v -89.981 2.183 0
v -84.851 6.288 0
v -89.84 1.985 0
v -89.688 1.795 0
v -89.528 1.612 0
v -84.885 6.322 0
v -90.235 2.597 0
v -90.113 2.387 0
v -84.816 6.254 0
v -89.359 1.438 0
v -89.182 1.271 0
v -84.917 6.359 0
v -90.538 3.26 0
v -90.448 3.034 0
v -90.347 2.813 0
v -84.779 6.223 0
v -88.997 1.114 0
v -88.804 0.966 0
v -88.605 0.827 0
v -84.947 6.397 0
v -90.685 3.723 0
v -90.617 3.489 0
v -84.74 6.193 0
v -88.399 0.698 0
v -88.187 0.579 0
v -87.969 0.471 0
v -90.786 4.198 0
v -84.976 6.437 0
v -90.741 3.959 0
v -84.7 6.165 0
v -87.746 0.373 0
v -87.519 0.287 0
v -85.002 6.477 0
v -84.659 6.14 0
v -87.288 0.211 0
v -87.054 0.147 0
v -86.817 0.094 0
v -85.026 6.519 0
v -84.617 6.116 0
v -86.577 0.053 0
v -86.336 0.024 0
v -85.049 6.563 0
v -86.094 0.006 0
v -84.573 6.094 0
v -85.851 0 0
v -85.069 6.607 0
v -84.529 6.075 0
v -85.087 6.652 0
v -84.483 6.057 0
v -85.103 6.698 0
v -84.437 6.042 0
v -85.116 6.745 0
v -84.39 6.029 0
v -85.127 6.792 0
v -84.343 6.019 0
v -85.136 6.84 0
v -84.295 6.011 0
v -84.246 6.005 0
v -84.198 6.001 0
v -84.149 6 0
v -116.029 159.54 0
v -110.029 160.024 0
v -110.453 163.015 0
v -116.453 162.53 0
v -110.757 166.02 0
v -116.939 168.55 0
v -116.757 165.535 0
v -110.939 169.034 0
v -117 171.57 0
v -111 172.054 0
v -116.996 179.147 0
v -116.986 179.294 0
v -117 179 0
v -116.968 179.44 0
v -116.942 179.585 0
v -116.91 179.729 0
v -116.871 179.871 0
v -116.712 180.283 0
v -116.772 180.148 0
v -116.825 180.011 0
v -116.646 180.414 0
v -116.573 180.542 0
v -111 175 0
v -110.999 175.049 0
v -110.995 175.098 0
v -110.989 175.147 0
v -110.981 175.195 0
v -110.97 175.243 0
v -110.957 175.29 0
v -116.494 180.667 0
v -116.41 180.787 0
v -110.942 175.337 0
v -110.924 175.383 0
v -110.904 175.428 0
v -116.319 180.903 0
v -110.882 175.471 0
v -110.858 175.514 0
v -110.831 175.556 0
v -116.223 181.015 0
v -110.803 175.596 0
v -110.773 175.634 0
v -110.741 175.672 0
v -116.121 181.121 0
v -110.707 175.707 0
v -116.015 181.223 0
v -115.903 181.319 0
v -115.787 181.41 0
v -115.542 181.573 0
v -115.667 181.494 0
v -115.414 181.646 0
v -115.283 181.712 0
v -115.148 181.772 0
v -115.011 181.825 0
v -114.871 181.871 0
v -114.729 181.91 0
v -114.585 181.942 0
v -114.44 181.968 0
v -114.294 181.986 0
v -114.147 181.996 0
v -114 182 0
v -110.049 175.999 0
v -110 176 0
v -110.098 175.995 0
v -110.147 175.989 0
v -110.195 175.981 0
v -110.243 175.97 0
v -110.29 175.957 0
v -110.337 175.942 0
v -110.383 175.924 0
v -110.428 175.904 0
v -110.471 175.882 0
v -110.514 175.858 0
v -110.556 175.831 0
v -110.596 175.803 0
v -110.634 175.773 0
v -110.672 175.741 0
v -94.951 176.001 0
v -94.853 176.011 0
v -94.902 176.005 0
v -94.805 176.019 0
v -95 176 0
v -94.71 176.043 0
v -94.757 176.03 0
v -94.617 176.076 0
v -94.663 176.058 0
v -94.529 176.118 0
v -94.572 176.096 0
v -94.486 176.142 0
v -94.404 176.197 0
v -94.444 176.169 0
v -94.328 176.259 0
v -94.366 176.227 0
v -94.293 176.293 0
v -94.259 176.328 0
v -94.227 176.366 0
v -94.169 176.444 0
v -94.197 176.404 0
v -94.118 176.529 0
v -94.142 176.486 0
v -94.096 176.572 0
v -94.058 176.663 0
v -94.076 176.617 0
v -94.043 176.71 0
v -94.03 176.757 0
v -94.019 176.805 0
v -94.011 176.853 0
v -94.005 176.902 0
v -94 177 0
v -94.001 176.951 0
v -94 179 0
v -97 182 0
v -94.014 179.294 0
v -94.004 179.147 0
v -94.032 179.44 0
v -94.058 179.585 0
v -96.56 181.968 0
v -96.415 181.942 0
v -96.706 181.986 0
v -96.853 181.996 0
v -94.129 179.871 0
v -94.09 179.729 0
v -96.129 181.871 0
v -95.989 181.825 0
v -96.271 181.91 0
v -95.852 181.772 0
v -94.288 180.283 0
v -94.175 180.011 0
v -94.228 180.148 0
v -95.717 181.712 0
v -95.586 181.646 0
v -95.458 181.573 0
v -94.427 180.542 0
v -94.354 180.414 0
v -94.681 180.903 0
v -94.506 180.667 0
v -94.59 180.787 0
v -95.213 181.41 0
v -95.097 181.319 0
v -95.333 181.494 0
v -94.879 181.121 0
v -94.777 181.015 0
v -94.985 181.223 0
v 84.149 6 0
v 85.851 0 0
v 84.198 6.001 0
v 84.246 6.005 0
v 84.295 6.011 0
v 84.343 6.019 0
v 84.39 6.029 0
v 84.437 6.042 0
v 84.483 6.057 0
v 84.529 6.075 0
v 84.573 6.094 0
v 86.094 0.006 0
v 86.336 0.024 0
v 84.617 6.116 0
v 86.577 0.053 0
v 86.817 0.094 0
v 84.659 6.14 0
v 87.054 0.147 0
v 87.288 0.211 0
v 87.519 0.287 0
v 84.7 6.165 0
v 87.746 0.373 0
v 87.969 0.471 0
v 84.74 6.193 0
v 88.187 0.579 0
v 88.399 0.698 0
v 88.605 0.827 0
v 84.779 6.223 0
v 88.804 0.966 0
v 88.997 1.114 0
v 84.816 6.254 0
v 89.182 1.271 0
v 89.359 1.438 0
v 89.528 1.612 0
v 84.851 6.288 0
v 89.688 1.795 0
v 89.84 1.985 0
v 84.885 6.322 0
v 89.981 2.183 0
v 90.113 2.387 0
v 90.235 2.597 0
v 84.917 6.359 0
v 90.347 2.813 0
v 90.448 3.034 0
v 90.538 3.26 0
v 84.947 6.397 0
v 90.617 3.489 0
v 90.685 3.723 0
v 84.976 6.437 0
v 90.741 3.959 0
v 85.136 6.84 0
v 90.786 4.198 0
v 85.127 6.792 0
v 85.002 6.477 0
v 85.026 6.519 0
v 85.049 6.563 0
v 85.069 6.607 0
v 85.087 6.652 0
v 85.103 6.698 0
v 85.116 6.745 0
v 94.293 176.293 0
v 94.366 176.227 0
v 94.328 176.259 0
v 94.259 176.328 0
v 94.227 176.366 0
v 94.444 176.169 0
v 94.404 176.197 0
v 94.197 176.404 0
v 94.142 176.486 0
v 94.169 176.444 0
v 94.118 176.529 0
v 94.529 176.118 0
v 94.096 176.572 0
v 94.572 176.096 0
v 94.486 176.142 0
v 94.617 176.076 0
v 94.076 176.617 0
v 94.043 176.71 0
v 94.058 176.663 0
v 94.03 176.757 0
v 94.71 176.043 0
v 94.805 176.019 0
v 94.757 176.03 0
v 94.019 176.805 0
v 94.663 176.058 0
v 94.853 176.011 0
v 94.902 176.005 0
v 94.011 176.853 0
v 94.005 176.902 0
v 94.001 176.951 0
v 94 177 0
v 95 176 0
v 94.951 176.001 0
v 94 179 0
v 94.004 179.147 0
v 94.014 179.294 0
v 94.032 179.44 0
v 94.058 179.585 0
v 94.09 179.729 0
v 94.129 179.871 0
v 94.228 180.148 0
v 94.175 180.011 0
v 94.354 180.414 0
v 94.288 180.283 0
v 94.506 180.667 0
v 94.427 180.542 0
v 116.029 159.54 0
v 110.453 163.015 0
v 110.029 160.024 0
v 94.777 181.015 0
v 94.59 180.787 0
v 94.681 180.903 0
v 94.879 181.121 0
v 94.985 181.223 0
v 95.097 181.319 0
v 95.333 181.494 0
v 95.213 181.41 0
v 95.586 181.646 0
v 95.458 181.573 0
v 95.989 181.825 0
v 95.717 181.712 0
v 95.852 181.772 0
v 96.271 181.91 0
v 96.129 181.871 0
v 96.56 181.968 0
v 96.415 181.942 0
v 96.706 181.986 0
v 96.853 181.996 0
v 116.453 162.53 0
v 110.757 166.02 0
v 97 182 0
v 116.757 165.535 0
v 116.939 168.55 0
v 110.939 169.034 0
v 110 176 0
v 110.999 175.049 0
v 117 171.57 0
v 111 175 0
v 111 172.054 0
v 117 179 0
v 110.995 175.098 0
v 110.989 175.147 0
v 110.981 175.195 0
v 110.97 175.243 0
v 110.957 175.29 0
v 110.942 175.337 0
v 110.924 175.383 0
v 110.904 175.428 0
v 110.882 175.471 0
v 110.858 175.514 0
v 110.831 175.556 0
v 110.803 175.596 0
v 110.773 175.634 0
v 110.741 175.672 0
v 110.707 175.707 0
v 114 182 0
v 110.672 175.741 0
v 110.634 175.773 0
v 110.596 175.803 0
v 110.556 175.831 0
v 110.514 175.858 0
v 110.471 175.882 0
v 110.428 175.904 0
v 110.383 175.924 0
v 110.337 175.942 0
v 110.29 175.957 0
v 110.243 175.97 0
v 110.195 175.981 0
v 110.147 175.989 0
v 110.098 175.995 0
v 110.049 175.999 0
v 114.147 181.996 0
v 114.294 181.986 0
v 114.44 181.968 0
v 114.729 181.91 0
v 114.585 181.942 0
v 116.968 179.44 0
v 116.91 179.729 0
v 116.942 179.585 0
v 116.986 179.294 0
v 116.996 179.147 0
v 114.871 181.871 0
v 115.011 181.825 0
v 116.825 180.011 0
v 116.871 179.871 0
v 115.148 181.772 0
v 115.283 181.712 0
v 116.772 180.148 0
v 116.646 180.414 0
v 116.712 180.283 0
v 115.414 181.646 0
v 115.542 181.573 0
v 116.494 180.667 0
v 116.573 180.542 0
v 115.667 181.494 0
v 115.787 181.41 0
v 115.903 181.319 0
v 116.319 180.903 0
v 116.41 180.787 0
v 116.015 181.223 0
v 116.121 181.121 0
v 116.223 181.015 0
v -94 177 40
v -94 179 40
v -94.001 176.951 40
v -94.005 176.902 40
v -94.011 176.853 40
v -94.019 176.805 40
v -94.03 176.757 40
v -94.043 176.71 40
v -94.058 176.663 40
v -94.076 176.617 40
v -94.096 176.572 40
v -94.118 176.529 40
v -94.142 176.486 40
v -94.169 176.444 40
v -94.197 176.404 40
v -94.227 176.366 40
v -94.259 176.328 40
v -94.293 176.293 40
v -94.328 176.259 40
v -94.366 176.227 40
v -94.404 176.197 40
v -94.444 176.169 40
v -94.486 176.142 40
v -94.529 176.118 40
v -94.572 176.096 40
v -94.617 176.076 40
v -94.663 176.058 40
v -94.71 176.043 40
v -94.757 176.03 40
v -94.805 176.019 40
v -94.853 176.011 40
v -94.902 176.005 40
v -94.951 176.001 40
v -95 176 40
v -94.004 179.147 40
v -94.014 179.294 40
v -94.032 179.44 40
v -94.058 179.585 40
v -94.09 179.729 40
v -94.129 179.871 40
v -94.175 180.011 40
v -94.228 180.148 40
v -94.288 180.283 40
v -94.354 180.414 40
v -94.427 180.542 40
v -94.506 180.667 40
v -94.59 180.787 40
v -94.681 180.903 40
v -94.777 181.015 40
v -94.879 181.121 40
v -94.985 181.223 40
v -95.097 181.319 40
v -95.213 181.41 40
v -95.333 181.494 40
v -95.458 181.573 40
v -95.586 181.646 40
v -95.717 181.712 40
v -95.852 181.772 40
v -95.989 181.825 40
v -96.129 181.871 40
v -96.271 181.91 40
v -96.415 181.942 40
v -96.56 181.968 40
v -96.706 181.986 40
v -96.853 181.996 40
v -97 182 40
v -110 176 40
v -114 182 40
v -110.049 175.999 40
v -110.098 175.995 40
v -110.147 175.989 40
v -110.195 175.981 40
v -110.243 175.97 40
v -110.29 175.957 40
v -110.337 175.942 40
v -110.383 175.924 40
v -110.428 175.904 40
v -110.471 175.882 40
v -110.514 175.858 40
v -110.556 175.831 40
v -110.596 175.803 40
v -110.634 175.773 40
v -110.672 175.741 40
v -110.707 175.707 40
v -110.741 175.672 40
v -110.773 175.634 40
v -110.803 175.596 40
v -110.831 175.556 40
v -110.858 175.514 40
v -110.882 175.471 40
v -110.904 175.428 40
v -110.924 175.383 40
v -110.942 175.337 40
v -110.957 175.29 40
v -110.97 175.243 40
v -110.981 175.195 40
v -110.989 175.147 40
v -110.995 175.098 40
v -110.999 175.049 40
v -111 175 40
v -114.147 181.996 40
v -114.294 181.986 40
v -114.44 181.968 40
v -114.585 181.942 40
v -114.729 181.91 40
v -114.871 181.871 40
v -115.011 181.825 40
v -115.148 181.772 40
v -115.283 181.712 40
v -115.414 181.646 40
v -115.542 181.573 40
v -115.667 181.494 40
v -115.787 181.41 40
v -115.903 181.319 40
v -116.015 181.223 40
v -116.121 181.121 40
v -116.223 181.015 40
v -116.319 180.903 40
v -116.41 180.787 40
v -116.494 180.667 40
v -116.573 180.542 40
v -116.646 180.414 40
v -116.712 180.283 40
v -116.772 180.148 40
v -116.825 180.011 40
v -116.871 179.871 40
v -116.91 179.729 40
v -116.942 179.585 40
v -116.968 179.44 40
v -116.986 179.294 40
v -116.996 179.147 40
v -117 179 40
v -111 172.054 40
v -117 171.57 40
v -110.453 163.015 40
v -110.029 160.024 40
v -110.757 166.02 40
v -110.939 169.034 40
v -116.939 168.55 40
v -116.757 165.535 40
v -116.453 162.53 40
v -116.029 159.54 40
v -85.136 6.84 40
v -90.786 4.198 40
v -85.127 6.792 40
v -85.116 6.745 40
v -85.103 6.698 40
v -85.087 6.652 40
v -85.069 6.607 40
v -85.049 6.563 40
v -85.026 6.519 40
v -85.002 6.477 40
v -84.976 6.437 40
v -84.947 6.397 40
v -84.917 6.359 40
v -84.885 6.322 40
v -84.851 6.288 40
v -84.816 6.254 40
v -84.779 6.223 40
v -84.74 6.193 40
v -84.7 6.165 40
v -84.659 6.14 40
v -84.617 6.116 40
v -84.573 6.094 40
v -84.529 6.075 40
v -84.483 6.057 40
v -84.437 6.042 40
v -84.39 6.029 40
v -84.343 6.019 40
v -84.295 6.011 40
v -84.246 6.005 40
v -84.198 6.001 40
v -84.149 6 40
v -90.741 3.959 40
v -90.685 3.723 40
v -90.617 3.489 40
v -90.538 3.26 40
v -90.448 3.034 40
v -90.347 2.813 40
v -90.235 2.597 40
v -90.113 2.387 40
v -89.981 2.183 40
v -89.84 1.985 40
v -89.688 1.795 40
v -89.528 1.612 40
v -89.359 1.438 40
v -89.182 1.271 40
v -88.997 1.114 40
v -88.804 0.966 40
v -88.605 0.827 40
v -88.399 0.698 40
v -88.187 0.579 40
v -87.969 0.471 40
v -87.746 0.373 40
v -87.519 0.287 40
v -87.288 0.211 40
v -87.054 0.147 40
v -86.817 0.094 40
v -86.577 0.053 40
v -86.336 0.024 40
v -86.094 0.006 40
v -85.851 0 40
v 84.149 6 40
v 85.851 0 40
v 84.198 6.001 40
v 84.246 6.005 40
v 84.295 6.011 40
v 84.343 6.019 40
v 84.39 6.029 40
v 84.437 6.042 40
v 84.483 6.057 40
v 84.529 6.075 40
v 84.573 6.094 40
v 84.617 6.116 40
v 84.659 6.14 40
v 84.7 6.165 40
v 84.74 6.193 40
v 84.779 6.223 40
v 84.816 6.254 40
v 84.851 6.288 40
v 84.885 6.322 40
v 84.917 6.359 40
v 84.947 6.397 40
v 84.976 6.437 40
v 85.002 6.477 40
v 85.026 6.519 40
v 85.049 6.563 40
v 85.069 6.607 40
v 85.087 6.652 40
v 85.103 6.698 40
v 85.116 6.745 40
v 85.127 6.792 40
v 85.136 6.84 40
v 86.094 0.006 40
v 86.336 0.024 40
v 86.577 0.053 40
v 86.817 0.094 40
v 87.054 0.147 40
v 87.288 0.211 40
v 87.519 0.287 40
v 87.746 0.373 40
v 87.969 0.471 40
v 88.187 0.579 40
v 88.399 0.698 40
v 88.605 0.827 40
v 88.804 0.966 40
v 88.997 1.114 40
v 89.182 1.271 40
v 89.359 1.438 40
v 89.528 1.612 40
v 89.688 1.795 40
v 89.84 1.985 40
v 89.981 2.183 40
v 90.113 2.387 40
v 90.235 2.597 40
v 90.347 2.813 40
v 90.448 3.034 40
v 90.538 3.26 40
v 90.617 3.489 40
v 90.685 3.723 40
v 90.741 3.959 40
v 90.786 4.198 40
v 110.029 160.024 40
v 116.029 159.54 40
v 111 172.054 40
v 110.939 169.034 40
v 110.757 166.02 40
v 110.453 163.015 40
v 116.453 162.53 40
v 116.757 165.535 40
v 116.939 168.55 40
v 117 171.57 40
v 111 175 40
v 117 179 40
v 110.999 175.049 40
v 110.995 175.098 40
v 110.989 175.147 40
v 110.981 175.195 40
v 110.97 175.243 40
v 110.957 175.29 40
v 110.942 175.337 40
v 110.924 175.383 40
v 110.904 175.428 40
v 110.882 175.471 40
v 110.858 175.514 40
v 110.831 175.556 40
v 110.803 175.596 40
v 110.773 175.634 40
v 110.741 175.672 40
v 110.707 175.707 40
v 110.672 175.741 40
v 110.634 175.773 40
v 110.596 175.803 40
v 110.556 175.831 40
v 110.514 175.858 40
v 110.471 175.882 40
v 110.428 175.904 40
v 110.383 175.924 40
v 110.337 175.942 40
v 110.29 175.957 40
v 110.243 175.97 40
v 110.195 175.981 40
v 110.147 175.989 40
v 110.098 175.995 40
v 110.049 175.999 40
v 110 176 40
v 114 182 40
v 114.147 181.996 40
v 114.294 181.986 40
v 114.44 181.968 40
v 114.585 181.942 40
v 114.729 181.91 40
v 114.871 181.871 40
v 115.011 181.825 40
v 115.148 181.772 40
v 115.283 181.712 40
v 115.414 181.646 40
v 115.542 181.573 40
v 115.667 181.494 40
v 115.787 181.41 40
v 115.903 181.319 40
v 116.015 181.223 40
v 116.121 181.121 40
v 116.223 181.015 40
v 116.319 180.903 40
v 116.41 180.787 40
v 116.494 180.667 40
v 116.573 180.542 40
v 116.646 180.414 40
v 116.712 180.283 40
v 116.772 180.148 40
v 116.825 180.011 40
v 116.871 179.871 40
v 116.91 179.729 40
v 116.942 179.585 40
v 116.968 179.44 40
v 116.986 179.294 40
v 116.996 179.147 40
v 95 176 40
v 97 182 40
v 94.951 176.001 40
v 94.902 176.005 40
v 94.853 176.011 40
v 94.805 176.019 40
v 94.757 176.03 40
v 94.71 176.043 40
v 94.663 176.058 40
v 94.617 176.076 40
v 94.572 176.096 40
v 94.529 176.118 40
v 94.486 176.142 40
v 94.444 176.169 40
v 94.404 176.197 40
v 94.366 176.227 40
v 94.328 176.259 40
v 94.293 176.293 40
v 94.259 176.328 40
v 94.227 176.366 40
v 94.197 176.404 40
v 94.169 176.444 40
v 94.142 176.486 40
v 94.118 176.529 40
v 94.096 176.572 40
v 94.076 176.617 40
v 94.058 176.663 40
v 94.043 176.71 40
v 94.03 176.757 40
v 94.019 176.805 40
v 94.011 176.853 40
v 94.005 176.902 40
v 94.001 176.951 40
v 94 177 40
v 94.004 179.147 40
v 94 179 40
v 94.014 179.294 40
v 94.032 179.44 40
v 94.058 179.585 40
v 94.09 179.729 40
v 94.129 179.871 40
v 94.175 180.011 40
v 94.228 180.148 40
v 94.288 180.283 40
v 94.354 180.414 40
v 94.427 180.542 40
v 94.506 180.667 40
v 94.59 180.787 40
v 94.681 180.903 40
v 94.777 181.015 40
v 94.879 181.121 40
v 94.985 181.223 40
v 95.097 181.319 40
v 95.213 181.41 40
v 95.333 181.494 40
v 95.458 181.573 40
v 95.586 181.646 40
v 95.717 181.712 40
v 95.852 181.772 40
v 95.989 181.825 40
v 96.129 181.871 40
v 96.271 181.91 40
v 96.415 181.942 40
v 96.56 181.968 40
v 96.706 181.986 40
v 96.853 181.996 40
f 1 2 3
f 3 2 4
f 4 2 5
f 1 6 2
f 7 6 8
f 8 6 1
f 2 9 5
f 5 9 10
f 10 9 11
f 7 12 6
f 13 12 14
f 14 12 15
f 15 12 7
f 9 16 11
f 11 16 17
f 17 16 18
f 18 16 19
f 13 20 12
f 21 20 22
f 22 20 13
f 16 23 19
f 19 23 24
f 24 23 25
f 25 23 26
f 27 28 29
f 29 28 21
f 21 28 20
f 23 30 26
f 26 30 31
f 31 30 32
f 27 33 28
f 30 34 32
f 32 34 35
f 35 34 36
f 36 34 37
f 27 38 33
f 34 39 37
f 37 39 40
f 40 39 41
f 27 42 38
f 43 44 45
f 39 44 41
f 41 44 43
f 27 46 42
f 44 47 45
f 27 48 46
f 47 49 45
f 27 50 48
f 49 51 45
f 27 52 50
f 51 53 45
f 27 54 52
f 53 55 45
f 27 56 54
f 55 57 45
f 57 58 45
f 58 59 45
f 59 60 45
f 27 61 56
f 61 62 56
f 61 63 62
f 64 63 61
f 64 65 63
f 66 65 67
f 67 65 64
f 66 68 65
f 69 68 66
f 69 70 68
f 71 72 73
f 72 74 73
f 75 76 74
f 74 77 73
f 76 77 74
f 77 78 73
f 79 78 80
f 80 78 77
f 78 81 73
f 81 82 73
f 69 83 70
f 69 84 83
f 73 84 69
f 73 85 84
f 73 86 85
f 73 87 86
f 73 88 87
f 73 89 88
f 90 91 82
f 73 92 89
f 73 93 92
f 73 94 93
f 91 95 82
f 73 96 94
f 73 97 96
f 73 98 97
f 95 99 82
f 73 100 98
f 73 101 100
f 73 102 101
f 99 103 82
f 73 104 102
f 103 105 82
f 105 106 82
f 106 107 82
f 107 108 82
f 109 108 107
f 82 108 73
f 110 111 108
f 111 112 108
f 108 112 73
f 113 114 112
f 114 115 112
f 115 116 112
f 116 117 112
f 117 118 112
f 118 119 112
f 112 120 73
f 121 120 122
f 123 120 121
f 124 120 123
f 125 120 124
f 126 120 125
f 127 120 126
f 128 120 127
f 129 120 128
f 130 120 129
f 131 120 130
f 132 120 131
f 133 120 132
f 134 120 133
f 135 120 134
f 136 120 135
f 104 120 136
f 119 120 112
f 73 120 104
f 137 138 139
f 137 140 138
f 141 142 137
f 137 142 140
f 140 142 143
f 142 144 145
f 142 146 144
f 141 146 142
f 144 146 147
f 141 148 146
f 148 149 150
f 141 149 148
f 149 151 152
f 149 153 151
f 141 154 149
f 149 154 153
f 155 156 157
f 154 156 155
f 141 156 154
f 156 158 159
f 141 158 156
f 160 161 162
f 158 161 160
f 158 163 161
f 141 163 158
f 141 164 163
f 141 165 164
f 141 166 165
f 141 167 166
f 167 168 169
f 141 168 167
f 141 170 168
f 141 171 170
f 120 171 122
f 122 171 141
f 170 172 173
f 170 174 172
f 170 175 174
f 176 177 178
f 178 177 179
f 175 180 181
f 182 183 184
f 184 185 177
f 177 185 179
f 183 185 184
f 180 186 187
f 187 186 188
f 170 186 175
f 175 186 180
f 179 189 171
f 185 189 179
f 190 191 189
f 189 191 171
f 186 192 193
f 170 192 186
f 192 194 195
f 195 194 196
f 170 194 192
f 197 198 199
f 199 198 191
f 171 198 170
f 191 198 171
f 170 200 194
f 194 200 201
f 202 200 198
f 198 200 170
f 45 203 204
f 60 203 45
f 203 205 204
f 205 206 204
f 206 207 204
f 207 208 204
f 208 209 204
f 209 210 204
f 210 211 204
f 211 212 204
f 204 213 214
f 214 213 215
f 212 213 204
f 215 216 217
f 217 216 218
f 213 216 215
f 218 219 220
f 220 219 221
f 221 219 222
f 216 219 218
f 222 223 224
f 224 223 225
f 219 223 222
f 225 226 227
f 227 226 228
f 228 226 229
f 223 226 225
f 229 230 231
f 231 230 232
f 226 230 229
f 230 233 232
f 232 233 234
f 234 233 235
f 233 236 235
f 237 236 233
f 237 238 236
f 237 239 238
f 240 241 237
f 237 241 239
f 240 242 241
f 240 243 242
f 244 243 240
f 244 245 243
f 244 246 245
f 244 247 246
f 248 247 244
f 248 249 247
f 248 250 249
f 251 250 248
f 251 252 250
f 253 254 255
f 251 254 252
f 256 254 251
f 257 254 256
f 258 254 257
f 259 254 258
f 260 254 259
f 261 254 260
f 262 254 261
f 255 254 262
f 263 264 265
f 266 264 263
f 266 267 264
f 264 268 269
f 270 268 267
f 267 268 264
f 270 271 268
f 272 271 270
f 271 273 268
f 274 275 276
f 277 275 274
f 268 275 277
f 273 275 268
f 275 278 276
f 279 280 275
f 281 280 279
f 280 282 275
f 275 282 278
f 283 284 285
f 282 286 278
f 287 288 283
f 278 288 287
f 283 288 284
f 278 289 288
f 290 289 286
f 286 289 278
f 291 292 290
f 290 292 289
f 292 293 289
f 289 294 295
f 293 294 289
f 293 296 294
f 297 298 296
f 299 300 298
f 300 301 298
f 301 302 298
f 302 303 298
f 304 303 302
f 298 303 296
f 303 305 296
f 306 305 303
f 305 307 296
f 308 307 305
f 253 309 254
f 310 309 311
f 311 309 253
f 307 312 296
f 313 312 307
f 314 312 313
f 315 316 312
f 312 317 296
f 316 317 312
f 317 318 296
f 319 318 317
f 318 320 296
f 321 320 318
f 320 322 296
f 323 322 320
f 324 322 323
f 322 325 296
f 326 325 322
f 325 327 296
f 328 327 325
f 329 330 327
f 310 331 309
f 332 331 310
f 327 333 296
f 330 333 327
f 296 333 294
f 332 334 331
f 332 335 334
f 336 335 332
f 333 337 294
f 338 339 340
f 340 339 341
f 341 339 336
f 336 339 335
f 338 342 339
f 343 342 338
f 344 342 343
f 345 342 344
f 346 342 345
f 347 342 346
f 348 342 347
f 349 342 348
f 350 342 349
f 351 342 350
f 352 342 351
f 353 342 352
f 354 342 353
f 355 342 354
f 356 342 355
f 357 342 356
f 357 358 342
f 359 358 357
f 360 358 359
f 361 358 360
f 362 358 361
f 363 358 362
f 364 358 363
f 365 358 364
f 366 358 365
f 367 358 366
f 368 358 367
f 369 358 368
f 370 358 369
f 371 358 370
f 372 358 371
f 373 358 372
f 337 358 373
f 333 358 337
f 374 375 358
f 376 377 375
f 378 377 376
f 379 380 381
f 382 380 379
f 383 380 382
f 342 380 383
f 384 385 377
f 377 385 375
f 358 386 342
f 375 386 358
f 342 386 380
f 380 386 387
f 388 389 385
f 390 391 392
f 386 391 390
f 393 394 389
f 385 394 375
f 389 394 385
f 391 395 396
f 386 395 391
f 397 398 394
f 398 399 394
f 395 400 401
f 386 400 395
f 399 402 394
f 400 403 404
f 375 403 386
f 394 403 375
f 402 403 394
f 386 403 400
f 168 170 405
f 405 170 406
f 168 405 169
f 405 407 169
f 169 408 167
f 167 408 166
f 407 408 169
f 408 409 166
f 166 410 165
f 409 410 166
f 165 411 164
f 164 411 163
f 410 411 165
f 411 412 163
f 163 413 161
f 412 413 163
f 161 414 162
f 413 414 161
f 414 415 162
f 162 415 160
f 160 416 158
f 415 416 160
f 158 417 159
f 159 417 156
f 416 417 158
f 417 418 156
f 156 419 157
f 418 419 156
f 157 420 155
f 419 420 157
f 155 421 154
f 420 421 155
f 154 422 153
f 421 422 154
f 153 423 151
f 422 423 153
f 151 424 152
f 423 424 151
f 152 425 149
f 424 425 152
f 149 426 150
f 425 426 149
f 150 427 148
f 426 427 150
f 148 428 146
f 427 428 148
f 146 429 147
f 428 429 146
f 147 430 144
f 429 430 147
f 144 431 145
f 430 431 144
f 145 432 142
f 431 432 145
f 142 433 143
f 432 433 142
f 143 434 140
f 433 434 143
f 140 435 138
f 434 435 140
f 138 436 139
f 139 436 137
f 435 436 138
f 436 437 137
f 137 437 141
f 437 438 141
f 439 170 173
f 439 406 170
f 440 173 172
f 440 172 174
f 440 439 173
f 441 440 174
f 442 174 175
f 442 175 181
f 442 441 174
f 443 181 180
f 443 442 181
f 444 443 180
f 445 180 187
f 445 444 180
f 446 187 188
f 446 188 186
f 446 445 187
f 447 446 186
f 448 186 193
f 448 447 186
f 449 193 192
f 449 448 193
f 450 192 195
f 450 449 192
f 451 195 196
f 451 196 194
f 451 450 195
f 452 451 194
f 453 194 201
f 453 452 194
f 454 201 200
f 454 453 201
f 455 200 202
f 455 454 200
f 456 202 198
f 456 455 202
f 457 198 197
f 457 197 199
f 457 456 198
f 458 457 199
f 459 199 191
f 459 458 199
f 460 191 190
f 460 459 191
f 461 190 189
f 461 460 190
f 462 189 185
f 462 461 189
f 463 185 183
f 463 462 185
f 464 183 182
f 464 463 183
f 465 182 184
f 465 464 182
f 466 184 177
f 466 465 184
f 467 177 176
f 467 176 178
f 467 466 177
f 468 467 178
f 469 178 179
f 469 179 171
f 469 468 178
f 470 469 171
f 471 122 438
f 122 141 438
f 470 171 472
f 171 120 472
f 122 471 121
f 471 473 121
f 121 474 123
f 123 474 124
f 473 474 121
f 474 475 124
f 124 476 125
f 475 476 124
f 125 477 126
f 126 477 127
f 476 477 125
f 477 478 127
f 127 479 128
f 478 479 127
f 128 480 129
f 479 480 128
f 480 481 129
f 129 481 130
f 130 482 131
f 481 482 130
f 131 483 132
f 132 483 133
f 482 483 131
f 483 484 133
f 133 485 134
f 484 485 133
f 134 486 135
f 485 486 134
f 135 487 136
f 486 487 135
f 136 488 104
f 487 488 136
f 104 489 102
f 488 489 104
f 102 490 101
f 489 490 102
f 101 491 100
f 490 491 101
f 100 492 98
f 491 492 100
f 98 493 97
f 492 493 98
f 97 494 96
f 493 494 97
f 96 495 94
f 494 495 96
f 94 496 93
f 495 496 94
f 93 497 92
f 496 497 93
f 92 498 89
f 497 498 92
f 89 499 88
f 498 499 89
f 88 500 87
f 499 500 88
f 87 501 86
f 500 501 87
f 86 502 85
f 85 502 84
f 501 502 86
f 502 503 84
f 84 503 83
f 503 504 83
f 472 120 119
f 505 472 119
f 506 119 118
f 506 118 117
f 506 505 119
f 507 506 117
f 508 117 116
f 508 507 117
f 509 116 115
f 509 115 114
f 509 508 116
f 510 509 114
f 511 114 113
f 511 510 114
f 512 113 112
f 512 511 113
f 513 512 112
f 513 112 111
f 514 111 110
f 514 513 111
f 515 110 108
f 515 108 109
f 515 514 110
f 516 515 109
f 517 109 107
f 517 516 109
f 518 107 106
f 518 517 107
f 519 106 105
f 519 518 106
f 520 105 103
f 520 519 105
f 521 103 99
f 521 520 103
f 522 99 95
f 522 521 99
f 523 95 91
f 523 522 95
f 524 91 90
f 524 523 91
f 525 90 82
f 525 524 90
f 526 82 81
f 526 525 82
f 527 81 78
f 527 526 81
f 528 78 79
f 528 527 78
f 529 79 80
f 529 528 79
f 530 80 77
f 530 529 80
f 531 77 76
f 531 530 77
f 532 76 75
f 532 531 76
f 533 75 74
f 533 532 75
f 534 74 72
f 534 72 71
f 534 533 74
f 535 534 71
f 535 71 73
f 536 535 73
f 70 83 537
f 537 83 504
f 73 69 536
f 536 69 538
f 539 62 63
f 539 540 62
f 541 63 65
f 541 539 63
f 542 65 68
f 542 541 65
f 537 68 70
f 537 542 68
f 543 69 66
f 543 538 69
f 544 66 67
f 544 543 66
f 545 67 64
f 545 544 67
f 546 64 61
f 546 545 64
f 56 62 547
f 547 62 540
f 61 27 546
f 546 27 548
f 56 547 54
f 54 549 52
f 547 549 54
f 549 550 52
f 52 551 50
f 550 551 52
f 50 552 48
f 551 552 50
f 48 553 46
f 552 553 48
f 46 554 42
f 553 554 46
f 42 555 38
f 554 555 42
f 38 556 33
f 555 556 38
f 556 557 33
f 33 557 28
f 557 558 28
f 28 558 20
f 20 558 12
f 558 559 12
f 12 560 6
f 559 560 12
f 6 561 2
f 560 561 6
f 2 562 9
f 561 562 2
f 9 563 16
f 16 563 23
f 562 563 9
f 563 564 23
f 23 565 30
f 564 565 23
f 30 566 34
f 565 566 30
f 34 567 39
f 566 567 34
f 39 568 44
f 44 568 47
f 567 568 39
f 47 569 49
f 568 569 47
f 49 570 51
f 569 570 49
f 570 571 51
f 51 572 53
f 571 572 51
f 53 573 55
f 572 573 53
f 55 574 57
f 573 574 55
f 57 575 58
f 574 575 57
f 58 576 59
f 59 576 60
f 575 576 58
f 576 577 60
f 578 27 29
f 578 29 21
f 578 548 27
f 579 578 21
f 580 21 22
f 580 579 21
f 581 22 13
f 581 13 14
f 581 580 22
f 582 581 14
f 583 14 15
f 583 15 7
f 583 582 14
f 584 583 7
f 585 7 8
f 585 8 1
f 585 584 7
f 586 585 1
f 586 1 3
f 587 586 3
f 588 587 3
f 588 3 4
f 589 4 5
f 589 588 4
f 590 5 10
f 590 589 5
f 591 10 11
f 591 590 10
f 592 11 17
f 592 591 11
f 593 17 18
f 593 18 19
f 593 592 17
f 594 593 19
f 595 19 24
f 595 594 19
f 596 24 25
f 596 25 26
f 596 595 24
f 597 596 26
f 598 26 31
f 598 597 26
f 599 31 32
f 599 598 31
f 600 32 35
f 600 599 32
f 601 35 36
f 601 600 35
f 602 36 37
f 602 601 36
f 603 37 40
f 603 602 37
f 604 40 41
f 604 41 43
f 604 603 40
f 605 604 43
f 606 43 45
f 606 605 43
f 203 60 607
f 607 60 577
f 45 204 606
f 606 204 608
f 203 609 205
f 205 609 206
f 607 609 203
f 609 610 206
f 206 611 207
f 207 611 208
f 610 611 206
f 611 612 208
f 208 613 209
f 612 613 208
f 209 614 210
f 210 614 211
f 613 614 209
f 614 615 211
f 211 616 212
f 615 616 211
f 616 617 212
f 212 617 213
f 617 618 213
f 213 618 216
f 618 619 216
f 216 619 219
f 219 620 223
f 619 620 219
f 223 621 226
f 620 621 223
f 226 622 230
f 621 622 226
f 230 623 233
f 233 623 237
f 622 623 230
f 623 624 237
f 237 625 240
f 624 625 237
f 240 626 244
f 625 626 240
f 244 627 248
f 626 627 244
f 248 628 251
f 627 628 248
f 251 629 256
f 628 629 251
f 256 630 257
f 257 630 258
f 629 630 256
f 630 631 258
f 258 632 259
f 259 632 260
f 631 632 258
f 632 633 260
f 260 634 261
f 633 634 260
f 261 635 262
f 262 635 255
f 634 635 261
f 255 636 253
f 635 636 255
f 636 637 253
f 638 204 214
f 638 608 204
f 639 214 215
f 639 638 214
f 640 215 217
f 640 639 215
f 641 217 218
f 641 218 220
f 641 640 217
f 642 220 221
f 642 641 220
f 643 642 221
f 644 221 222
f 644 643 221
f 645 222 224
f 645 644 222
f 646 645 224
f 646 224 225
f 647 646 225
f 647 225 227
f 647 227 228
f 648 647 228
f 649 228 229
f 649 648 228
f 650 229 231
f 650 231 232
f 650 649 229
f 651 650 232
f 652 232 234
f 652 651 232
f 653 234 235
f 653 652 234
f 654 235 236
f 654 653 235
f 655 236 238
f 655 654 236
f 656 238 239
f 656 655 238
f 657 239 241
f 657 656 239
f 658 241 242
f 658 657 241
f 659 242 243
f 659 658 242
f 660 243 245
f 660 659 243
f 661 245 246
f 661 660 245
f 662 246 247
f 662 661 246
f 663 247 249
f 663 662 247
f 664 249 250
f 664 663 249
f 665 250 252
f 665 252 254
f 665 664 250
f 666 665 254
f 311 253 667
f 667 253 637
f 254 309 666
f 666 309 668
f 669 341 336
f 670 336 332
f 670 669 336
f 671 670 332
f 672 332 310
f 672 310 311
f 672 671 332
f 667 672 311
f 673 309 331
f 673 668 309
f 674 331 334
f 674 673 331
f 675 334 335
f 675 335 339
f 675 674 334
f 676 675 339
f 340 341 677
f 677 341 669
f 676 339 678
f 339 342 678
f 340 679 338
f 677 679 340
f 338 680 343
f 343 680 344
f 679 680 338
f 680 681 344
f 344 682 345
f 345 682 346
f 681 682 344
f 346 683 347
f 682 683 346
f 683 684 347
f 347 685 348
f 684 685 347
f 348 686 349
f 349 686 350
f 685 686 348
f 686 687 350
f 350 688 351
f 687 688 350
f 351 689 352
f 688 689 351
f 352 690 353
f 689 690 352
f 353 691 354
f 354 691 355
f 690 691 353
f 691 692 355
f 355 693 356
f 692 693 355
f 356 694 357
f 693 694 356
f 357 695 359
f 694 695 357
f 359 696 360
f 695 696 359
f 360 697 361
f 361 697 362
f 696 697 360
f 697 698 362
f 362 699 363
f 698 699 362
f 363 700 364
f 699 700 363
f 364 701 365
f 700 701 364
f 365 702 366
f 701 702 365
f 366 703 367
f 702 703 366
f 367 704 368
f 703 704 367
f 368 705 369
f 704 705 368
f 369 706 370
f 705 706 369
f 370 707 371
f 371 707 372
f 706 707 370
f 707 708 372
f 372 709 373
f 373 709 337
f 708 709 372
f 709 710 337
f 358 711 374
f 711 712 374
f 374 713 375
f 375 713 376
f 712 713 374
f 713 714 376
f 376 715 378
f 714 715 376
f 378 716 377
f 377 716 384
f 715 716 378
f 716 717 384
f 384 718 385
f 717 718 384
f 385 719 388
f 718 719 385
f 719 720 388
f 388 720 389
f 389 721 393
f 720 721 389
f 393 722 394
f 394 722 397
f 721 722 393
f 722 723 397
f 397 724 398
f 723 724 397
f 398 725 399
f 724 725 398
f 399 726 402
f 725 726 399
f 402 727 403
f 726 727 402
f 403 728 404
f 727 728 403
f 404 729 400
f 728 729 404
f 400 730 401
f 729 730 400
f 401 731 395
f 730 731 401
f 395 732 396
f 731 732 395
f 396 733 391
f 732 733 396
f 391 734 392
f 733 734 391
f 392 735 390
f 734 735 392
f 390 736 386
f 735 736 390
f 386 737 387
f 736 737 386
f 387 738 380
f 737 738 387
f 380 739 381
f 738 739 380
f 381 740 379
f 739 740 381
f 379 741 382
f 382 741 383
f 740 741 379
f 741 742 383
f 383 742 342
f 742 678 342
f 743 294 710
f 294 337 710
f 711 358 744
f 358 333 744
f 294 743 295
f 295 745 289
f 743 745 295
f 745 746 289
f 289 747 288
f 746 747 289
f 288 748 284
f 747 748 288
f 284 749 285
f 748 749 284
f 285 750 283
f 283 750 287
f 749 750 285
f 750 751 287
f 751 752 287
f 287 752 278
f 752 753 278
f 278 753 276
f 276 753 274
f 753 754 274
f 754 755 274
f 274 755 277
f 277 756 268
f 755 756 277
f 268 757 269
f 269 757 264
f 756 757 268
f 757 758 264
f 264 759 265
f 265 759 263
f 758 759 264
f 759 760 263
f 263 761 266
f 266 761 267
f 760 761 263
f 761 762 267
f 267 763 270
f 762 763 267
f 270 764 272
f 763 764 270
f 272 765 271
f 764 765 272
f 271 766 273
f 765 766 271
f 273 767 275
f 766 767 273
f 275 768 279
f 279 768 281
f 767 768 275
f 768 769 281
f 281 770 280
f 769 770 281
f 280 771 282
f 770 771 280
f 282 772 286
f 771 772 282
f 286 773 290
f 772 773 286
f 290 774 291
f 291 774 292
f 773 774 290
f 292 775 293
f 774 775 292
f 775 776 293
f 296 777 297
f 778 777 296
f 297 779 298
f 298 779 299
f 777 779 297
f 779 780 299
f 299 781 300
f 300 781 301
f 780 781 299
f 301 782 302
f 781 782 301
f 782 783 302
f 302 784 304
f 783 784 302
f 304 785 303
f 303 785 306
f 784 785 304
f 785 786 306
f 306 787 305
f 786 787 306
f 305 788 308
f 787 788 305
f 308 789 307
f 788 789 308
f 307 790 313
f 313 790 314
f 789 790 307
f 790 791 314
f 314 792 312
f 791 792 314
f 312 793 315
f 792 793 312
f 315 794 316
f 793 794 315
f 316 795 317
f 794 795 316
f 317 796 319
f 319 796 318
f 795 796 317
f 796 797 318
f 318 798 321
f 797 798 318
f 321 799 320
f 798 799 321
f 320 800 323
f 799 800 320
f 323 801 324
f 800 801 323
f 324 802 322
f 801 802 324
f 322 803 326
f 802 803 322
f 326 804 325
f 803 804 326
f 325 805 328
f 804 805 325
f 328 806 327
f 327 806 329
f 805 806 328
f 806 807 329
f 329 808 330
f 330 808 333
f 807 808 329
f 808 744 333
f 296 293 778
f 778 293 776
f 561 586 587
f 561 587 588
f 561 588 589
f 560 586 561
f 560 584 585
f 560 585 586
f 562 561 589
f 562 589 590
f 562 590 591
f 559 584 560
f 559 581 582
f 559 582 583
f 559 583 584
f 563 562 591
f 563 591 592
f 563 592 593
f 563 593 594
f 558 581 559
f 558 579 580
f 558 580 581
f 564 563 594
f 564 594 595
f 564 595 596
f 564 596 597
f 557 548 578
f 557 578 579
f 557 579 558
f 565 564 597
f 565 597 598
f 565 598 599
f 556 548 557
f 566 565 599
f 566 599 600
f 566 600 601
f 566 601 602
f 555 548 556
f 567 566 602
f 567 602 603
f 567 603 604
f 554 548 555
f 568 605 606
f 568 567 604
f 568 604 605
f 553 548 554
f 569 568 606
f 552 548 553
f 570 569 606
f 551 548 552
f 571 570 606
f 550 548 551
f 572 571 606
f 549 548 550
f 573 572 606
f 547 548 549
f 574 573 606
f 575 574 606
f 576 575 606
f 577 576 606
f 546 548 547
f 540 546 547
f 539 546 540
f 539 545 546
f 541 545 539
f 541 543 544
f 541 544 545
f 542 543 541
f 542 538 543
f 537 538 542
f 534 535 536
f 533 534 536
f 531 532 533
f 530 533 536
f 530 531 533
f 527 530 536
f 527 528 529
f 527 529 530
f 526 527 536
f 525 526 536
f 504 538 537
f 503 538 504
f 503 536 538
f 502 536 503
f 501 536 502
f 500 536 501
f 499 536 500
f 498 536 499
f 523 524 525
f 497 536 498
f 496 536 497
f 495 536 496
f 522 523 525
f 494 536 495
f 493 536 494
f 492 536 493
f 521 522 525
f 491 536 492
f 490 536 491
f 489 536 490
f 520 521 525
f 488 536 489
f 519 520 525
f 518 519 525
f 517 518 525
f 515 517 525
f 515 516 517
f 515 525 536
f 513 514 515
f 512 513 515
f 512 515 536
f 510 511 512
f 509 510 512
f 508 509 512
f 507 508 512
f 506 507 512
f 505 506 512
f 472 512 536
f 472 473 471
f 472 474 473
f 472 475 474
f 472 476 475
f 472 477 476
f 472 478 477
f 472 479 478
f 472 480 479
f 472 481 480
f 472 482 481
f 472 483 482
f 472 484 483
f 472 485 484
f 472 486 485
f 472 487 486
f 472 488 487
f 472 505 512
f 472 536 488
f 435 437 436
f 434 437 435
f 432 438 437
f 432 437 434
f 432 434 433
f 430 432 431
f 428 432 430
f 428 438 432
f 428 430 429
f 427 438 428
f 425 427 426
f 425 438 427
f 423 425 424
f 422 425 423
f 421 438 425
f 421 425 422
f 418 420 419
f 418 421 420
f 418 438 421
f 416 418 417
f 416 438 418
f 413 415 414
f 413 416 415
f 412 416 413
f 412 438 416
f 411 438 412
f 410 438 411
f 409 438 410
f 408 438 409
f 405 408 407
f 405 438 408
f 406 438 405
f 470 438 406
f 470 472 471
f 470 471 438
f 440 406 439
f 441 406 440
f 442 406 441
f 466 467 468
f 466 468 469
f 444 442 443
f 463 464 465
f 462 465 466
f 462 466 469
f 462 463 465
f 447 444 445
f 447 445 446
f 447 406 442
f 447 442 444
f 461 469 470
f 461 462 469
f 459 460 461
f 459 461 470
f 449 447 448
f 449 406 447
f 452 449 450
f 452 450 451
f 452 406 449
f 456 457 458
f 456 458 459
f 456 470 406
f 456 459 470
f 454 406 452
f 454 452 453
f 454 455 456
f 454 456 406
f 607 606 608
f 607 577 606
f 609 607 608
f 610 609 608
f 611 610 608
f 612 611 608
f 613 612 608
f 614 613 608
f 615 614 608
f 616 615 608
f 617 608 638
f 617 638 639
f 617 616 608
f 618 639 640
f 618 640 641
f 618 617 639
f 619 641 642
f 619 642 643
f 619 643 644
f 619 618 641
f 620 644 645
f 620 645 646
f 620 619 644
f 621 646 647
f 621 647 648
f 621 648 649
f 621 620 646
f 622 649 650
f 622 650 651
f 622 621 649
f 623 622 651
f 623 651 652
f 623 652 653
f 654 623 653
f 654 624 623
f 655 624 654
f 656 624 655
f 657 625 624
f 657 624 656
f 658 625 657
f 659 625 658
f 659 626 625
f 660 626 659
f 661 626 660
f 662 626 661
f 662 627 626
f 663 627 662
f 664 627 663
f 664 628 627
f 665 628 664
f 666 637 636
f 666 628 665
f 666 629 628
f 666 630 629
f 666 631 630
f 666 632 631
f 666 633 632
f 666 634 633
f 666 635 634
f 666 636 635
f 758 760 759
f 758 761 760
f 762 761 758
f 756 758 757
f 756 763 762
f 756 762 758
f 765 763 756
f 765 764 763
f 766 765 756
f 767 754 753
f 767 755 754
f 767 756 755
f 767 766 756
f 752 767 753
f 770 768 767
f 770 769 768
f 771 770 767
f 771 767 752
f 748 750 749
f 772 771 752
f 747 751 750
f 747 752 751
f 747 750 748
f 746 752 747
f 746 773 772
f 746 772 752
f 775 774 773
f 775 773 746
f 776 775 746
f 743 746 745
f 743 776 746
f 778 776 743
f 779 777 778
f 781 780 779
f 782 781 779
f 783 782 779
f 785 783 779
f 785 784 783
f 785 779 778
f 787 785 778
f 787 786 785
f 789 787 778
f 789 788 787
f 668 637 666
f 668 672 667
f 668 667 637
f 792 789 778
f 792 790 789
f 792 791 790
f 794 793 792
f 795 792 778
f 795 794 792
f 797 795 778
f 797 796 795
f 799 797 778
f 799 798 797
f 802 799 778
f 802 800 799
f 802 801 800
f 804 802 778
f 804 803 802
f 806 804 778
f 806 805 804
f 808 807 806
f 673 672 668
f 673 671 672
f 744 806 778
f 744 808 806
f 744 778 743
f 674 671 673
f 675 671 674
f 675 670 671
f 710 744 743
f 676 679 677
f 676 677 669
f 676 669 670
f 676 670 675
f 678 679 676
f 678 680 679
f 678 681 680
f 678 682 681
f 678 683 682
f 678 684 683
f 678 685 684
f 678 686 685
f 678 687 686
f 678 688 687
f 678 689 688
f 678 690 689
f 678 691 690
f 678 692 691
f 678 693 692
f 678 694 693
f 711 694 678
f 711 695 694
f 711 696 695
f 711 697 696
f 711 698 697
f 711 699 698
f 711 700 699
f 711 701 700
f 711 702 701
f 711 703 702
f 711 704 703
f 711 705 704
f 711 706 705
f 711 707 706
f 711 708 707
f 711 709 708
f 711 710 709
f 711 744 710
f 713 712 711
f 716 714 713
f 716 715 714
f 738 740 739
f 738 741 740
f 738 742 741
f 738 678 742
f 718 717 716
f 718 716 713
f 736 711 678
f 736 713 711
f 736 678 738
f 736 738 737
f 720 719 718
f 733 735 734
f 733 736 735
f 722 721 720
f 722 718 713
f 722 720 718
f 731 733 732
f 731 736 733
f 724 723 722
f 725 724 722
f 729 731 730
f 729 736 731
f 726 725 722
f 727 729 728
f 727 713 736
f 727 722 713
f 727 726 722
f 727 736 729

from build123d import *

# Parameters (mm, degrees)
PAD_DEPTH   = 40
FILLET_R    = 75
FILLET001_R = 5
FILLET002_R = 1
FILLET003_R = 3
FILLET004_R = 1


with BuildPart() as part:
    # Sketch → Pad (new body)
    with BuildSketch(Plane.XY):
        Polygon((-94, 182), (-117, 182), (-117, 165.515676), (-90.103703, 0), (90.103703, 0), (117, 165.515676), (117, 182), (94, 182), (94, 176), (111, 176), (111, 166), (85, 6), (-85, 6), (-111, 166), (-111, 176), (-94, 176), align=None)
    extrude(amount=PAD_DEPTH)

    # Fillet
    fillet_edges = [part.edges().sort_by_distance(p)[0] for p in [
        (117, 165.515676, 20),
        (-117, 165.515676, 20),
        (111, 166, 20),
        (-111, 166, 20),
    ]]
    fillet(fillet_edges, radius=FILLET_R)

    # Fillet001
    fillet001_edges = [part.edges().sort_by_distance(p)[0] for p in [
        (-90.103703, 0, 20),
        (90.103703, 0, 20),
    ]]
    fillet(fillet001_edges, radius=FILLET001_R)

    # Fillet002
    fillet002_edges = [part.edges().sort_by_distance(p)[0] for p in [
        (85, 6, 20),
        (-85, 6, 20),
    ]]
    fillet(fillet002_edges, radius=FILLET002_R)

    # Fillet003
    fillet003_edges = [part.edges().sort_by_distance(p)[0] for p in [
        (117, 182, 20),
        (-117, 182, 20),
        (-94, 182, 20),
        (94, 182, 20),
    ]]
    fillet(fillet003_edges, radius=FILLET003_R)

    # Fillet004
    fillet004_edges = [part.edges().sort_by_distance(p)[0] for p in [
        (-94, 176, 20),
        (-111, 176, 20),
        (111, 176, 20),
        (94, 176, 20),
    ]]
    fillet(fillet004_edges, radius=FILLET004_R)


solid = part.part
